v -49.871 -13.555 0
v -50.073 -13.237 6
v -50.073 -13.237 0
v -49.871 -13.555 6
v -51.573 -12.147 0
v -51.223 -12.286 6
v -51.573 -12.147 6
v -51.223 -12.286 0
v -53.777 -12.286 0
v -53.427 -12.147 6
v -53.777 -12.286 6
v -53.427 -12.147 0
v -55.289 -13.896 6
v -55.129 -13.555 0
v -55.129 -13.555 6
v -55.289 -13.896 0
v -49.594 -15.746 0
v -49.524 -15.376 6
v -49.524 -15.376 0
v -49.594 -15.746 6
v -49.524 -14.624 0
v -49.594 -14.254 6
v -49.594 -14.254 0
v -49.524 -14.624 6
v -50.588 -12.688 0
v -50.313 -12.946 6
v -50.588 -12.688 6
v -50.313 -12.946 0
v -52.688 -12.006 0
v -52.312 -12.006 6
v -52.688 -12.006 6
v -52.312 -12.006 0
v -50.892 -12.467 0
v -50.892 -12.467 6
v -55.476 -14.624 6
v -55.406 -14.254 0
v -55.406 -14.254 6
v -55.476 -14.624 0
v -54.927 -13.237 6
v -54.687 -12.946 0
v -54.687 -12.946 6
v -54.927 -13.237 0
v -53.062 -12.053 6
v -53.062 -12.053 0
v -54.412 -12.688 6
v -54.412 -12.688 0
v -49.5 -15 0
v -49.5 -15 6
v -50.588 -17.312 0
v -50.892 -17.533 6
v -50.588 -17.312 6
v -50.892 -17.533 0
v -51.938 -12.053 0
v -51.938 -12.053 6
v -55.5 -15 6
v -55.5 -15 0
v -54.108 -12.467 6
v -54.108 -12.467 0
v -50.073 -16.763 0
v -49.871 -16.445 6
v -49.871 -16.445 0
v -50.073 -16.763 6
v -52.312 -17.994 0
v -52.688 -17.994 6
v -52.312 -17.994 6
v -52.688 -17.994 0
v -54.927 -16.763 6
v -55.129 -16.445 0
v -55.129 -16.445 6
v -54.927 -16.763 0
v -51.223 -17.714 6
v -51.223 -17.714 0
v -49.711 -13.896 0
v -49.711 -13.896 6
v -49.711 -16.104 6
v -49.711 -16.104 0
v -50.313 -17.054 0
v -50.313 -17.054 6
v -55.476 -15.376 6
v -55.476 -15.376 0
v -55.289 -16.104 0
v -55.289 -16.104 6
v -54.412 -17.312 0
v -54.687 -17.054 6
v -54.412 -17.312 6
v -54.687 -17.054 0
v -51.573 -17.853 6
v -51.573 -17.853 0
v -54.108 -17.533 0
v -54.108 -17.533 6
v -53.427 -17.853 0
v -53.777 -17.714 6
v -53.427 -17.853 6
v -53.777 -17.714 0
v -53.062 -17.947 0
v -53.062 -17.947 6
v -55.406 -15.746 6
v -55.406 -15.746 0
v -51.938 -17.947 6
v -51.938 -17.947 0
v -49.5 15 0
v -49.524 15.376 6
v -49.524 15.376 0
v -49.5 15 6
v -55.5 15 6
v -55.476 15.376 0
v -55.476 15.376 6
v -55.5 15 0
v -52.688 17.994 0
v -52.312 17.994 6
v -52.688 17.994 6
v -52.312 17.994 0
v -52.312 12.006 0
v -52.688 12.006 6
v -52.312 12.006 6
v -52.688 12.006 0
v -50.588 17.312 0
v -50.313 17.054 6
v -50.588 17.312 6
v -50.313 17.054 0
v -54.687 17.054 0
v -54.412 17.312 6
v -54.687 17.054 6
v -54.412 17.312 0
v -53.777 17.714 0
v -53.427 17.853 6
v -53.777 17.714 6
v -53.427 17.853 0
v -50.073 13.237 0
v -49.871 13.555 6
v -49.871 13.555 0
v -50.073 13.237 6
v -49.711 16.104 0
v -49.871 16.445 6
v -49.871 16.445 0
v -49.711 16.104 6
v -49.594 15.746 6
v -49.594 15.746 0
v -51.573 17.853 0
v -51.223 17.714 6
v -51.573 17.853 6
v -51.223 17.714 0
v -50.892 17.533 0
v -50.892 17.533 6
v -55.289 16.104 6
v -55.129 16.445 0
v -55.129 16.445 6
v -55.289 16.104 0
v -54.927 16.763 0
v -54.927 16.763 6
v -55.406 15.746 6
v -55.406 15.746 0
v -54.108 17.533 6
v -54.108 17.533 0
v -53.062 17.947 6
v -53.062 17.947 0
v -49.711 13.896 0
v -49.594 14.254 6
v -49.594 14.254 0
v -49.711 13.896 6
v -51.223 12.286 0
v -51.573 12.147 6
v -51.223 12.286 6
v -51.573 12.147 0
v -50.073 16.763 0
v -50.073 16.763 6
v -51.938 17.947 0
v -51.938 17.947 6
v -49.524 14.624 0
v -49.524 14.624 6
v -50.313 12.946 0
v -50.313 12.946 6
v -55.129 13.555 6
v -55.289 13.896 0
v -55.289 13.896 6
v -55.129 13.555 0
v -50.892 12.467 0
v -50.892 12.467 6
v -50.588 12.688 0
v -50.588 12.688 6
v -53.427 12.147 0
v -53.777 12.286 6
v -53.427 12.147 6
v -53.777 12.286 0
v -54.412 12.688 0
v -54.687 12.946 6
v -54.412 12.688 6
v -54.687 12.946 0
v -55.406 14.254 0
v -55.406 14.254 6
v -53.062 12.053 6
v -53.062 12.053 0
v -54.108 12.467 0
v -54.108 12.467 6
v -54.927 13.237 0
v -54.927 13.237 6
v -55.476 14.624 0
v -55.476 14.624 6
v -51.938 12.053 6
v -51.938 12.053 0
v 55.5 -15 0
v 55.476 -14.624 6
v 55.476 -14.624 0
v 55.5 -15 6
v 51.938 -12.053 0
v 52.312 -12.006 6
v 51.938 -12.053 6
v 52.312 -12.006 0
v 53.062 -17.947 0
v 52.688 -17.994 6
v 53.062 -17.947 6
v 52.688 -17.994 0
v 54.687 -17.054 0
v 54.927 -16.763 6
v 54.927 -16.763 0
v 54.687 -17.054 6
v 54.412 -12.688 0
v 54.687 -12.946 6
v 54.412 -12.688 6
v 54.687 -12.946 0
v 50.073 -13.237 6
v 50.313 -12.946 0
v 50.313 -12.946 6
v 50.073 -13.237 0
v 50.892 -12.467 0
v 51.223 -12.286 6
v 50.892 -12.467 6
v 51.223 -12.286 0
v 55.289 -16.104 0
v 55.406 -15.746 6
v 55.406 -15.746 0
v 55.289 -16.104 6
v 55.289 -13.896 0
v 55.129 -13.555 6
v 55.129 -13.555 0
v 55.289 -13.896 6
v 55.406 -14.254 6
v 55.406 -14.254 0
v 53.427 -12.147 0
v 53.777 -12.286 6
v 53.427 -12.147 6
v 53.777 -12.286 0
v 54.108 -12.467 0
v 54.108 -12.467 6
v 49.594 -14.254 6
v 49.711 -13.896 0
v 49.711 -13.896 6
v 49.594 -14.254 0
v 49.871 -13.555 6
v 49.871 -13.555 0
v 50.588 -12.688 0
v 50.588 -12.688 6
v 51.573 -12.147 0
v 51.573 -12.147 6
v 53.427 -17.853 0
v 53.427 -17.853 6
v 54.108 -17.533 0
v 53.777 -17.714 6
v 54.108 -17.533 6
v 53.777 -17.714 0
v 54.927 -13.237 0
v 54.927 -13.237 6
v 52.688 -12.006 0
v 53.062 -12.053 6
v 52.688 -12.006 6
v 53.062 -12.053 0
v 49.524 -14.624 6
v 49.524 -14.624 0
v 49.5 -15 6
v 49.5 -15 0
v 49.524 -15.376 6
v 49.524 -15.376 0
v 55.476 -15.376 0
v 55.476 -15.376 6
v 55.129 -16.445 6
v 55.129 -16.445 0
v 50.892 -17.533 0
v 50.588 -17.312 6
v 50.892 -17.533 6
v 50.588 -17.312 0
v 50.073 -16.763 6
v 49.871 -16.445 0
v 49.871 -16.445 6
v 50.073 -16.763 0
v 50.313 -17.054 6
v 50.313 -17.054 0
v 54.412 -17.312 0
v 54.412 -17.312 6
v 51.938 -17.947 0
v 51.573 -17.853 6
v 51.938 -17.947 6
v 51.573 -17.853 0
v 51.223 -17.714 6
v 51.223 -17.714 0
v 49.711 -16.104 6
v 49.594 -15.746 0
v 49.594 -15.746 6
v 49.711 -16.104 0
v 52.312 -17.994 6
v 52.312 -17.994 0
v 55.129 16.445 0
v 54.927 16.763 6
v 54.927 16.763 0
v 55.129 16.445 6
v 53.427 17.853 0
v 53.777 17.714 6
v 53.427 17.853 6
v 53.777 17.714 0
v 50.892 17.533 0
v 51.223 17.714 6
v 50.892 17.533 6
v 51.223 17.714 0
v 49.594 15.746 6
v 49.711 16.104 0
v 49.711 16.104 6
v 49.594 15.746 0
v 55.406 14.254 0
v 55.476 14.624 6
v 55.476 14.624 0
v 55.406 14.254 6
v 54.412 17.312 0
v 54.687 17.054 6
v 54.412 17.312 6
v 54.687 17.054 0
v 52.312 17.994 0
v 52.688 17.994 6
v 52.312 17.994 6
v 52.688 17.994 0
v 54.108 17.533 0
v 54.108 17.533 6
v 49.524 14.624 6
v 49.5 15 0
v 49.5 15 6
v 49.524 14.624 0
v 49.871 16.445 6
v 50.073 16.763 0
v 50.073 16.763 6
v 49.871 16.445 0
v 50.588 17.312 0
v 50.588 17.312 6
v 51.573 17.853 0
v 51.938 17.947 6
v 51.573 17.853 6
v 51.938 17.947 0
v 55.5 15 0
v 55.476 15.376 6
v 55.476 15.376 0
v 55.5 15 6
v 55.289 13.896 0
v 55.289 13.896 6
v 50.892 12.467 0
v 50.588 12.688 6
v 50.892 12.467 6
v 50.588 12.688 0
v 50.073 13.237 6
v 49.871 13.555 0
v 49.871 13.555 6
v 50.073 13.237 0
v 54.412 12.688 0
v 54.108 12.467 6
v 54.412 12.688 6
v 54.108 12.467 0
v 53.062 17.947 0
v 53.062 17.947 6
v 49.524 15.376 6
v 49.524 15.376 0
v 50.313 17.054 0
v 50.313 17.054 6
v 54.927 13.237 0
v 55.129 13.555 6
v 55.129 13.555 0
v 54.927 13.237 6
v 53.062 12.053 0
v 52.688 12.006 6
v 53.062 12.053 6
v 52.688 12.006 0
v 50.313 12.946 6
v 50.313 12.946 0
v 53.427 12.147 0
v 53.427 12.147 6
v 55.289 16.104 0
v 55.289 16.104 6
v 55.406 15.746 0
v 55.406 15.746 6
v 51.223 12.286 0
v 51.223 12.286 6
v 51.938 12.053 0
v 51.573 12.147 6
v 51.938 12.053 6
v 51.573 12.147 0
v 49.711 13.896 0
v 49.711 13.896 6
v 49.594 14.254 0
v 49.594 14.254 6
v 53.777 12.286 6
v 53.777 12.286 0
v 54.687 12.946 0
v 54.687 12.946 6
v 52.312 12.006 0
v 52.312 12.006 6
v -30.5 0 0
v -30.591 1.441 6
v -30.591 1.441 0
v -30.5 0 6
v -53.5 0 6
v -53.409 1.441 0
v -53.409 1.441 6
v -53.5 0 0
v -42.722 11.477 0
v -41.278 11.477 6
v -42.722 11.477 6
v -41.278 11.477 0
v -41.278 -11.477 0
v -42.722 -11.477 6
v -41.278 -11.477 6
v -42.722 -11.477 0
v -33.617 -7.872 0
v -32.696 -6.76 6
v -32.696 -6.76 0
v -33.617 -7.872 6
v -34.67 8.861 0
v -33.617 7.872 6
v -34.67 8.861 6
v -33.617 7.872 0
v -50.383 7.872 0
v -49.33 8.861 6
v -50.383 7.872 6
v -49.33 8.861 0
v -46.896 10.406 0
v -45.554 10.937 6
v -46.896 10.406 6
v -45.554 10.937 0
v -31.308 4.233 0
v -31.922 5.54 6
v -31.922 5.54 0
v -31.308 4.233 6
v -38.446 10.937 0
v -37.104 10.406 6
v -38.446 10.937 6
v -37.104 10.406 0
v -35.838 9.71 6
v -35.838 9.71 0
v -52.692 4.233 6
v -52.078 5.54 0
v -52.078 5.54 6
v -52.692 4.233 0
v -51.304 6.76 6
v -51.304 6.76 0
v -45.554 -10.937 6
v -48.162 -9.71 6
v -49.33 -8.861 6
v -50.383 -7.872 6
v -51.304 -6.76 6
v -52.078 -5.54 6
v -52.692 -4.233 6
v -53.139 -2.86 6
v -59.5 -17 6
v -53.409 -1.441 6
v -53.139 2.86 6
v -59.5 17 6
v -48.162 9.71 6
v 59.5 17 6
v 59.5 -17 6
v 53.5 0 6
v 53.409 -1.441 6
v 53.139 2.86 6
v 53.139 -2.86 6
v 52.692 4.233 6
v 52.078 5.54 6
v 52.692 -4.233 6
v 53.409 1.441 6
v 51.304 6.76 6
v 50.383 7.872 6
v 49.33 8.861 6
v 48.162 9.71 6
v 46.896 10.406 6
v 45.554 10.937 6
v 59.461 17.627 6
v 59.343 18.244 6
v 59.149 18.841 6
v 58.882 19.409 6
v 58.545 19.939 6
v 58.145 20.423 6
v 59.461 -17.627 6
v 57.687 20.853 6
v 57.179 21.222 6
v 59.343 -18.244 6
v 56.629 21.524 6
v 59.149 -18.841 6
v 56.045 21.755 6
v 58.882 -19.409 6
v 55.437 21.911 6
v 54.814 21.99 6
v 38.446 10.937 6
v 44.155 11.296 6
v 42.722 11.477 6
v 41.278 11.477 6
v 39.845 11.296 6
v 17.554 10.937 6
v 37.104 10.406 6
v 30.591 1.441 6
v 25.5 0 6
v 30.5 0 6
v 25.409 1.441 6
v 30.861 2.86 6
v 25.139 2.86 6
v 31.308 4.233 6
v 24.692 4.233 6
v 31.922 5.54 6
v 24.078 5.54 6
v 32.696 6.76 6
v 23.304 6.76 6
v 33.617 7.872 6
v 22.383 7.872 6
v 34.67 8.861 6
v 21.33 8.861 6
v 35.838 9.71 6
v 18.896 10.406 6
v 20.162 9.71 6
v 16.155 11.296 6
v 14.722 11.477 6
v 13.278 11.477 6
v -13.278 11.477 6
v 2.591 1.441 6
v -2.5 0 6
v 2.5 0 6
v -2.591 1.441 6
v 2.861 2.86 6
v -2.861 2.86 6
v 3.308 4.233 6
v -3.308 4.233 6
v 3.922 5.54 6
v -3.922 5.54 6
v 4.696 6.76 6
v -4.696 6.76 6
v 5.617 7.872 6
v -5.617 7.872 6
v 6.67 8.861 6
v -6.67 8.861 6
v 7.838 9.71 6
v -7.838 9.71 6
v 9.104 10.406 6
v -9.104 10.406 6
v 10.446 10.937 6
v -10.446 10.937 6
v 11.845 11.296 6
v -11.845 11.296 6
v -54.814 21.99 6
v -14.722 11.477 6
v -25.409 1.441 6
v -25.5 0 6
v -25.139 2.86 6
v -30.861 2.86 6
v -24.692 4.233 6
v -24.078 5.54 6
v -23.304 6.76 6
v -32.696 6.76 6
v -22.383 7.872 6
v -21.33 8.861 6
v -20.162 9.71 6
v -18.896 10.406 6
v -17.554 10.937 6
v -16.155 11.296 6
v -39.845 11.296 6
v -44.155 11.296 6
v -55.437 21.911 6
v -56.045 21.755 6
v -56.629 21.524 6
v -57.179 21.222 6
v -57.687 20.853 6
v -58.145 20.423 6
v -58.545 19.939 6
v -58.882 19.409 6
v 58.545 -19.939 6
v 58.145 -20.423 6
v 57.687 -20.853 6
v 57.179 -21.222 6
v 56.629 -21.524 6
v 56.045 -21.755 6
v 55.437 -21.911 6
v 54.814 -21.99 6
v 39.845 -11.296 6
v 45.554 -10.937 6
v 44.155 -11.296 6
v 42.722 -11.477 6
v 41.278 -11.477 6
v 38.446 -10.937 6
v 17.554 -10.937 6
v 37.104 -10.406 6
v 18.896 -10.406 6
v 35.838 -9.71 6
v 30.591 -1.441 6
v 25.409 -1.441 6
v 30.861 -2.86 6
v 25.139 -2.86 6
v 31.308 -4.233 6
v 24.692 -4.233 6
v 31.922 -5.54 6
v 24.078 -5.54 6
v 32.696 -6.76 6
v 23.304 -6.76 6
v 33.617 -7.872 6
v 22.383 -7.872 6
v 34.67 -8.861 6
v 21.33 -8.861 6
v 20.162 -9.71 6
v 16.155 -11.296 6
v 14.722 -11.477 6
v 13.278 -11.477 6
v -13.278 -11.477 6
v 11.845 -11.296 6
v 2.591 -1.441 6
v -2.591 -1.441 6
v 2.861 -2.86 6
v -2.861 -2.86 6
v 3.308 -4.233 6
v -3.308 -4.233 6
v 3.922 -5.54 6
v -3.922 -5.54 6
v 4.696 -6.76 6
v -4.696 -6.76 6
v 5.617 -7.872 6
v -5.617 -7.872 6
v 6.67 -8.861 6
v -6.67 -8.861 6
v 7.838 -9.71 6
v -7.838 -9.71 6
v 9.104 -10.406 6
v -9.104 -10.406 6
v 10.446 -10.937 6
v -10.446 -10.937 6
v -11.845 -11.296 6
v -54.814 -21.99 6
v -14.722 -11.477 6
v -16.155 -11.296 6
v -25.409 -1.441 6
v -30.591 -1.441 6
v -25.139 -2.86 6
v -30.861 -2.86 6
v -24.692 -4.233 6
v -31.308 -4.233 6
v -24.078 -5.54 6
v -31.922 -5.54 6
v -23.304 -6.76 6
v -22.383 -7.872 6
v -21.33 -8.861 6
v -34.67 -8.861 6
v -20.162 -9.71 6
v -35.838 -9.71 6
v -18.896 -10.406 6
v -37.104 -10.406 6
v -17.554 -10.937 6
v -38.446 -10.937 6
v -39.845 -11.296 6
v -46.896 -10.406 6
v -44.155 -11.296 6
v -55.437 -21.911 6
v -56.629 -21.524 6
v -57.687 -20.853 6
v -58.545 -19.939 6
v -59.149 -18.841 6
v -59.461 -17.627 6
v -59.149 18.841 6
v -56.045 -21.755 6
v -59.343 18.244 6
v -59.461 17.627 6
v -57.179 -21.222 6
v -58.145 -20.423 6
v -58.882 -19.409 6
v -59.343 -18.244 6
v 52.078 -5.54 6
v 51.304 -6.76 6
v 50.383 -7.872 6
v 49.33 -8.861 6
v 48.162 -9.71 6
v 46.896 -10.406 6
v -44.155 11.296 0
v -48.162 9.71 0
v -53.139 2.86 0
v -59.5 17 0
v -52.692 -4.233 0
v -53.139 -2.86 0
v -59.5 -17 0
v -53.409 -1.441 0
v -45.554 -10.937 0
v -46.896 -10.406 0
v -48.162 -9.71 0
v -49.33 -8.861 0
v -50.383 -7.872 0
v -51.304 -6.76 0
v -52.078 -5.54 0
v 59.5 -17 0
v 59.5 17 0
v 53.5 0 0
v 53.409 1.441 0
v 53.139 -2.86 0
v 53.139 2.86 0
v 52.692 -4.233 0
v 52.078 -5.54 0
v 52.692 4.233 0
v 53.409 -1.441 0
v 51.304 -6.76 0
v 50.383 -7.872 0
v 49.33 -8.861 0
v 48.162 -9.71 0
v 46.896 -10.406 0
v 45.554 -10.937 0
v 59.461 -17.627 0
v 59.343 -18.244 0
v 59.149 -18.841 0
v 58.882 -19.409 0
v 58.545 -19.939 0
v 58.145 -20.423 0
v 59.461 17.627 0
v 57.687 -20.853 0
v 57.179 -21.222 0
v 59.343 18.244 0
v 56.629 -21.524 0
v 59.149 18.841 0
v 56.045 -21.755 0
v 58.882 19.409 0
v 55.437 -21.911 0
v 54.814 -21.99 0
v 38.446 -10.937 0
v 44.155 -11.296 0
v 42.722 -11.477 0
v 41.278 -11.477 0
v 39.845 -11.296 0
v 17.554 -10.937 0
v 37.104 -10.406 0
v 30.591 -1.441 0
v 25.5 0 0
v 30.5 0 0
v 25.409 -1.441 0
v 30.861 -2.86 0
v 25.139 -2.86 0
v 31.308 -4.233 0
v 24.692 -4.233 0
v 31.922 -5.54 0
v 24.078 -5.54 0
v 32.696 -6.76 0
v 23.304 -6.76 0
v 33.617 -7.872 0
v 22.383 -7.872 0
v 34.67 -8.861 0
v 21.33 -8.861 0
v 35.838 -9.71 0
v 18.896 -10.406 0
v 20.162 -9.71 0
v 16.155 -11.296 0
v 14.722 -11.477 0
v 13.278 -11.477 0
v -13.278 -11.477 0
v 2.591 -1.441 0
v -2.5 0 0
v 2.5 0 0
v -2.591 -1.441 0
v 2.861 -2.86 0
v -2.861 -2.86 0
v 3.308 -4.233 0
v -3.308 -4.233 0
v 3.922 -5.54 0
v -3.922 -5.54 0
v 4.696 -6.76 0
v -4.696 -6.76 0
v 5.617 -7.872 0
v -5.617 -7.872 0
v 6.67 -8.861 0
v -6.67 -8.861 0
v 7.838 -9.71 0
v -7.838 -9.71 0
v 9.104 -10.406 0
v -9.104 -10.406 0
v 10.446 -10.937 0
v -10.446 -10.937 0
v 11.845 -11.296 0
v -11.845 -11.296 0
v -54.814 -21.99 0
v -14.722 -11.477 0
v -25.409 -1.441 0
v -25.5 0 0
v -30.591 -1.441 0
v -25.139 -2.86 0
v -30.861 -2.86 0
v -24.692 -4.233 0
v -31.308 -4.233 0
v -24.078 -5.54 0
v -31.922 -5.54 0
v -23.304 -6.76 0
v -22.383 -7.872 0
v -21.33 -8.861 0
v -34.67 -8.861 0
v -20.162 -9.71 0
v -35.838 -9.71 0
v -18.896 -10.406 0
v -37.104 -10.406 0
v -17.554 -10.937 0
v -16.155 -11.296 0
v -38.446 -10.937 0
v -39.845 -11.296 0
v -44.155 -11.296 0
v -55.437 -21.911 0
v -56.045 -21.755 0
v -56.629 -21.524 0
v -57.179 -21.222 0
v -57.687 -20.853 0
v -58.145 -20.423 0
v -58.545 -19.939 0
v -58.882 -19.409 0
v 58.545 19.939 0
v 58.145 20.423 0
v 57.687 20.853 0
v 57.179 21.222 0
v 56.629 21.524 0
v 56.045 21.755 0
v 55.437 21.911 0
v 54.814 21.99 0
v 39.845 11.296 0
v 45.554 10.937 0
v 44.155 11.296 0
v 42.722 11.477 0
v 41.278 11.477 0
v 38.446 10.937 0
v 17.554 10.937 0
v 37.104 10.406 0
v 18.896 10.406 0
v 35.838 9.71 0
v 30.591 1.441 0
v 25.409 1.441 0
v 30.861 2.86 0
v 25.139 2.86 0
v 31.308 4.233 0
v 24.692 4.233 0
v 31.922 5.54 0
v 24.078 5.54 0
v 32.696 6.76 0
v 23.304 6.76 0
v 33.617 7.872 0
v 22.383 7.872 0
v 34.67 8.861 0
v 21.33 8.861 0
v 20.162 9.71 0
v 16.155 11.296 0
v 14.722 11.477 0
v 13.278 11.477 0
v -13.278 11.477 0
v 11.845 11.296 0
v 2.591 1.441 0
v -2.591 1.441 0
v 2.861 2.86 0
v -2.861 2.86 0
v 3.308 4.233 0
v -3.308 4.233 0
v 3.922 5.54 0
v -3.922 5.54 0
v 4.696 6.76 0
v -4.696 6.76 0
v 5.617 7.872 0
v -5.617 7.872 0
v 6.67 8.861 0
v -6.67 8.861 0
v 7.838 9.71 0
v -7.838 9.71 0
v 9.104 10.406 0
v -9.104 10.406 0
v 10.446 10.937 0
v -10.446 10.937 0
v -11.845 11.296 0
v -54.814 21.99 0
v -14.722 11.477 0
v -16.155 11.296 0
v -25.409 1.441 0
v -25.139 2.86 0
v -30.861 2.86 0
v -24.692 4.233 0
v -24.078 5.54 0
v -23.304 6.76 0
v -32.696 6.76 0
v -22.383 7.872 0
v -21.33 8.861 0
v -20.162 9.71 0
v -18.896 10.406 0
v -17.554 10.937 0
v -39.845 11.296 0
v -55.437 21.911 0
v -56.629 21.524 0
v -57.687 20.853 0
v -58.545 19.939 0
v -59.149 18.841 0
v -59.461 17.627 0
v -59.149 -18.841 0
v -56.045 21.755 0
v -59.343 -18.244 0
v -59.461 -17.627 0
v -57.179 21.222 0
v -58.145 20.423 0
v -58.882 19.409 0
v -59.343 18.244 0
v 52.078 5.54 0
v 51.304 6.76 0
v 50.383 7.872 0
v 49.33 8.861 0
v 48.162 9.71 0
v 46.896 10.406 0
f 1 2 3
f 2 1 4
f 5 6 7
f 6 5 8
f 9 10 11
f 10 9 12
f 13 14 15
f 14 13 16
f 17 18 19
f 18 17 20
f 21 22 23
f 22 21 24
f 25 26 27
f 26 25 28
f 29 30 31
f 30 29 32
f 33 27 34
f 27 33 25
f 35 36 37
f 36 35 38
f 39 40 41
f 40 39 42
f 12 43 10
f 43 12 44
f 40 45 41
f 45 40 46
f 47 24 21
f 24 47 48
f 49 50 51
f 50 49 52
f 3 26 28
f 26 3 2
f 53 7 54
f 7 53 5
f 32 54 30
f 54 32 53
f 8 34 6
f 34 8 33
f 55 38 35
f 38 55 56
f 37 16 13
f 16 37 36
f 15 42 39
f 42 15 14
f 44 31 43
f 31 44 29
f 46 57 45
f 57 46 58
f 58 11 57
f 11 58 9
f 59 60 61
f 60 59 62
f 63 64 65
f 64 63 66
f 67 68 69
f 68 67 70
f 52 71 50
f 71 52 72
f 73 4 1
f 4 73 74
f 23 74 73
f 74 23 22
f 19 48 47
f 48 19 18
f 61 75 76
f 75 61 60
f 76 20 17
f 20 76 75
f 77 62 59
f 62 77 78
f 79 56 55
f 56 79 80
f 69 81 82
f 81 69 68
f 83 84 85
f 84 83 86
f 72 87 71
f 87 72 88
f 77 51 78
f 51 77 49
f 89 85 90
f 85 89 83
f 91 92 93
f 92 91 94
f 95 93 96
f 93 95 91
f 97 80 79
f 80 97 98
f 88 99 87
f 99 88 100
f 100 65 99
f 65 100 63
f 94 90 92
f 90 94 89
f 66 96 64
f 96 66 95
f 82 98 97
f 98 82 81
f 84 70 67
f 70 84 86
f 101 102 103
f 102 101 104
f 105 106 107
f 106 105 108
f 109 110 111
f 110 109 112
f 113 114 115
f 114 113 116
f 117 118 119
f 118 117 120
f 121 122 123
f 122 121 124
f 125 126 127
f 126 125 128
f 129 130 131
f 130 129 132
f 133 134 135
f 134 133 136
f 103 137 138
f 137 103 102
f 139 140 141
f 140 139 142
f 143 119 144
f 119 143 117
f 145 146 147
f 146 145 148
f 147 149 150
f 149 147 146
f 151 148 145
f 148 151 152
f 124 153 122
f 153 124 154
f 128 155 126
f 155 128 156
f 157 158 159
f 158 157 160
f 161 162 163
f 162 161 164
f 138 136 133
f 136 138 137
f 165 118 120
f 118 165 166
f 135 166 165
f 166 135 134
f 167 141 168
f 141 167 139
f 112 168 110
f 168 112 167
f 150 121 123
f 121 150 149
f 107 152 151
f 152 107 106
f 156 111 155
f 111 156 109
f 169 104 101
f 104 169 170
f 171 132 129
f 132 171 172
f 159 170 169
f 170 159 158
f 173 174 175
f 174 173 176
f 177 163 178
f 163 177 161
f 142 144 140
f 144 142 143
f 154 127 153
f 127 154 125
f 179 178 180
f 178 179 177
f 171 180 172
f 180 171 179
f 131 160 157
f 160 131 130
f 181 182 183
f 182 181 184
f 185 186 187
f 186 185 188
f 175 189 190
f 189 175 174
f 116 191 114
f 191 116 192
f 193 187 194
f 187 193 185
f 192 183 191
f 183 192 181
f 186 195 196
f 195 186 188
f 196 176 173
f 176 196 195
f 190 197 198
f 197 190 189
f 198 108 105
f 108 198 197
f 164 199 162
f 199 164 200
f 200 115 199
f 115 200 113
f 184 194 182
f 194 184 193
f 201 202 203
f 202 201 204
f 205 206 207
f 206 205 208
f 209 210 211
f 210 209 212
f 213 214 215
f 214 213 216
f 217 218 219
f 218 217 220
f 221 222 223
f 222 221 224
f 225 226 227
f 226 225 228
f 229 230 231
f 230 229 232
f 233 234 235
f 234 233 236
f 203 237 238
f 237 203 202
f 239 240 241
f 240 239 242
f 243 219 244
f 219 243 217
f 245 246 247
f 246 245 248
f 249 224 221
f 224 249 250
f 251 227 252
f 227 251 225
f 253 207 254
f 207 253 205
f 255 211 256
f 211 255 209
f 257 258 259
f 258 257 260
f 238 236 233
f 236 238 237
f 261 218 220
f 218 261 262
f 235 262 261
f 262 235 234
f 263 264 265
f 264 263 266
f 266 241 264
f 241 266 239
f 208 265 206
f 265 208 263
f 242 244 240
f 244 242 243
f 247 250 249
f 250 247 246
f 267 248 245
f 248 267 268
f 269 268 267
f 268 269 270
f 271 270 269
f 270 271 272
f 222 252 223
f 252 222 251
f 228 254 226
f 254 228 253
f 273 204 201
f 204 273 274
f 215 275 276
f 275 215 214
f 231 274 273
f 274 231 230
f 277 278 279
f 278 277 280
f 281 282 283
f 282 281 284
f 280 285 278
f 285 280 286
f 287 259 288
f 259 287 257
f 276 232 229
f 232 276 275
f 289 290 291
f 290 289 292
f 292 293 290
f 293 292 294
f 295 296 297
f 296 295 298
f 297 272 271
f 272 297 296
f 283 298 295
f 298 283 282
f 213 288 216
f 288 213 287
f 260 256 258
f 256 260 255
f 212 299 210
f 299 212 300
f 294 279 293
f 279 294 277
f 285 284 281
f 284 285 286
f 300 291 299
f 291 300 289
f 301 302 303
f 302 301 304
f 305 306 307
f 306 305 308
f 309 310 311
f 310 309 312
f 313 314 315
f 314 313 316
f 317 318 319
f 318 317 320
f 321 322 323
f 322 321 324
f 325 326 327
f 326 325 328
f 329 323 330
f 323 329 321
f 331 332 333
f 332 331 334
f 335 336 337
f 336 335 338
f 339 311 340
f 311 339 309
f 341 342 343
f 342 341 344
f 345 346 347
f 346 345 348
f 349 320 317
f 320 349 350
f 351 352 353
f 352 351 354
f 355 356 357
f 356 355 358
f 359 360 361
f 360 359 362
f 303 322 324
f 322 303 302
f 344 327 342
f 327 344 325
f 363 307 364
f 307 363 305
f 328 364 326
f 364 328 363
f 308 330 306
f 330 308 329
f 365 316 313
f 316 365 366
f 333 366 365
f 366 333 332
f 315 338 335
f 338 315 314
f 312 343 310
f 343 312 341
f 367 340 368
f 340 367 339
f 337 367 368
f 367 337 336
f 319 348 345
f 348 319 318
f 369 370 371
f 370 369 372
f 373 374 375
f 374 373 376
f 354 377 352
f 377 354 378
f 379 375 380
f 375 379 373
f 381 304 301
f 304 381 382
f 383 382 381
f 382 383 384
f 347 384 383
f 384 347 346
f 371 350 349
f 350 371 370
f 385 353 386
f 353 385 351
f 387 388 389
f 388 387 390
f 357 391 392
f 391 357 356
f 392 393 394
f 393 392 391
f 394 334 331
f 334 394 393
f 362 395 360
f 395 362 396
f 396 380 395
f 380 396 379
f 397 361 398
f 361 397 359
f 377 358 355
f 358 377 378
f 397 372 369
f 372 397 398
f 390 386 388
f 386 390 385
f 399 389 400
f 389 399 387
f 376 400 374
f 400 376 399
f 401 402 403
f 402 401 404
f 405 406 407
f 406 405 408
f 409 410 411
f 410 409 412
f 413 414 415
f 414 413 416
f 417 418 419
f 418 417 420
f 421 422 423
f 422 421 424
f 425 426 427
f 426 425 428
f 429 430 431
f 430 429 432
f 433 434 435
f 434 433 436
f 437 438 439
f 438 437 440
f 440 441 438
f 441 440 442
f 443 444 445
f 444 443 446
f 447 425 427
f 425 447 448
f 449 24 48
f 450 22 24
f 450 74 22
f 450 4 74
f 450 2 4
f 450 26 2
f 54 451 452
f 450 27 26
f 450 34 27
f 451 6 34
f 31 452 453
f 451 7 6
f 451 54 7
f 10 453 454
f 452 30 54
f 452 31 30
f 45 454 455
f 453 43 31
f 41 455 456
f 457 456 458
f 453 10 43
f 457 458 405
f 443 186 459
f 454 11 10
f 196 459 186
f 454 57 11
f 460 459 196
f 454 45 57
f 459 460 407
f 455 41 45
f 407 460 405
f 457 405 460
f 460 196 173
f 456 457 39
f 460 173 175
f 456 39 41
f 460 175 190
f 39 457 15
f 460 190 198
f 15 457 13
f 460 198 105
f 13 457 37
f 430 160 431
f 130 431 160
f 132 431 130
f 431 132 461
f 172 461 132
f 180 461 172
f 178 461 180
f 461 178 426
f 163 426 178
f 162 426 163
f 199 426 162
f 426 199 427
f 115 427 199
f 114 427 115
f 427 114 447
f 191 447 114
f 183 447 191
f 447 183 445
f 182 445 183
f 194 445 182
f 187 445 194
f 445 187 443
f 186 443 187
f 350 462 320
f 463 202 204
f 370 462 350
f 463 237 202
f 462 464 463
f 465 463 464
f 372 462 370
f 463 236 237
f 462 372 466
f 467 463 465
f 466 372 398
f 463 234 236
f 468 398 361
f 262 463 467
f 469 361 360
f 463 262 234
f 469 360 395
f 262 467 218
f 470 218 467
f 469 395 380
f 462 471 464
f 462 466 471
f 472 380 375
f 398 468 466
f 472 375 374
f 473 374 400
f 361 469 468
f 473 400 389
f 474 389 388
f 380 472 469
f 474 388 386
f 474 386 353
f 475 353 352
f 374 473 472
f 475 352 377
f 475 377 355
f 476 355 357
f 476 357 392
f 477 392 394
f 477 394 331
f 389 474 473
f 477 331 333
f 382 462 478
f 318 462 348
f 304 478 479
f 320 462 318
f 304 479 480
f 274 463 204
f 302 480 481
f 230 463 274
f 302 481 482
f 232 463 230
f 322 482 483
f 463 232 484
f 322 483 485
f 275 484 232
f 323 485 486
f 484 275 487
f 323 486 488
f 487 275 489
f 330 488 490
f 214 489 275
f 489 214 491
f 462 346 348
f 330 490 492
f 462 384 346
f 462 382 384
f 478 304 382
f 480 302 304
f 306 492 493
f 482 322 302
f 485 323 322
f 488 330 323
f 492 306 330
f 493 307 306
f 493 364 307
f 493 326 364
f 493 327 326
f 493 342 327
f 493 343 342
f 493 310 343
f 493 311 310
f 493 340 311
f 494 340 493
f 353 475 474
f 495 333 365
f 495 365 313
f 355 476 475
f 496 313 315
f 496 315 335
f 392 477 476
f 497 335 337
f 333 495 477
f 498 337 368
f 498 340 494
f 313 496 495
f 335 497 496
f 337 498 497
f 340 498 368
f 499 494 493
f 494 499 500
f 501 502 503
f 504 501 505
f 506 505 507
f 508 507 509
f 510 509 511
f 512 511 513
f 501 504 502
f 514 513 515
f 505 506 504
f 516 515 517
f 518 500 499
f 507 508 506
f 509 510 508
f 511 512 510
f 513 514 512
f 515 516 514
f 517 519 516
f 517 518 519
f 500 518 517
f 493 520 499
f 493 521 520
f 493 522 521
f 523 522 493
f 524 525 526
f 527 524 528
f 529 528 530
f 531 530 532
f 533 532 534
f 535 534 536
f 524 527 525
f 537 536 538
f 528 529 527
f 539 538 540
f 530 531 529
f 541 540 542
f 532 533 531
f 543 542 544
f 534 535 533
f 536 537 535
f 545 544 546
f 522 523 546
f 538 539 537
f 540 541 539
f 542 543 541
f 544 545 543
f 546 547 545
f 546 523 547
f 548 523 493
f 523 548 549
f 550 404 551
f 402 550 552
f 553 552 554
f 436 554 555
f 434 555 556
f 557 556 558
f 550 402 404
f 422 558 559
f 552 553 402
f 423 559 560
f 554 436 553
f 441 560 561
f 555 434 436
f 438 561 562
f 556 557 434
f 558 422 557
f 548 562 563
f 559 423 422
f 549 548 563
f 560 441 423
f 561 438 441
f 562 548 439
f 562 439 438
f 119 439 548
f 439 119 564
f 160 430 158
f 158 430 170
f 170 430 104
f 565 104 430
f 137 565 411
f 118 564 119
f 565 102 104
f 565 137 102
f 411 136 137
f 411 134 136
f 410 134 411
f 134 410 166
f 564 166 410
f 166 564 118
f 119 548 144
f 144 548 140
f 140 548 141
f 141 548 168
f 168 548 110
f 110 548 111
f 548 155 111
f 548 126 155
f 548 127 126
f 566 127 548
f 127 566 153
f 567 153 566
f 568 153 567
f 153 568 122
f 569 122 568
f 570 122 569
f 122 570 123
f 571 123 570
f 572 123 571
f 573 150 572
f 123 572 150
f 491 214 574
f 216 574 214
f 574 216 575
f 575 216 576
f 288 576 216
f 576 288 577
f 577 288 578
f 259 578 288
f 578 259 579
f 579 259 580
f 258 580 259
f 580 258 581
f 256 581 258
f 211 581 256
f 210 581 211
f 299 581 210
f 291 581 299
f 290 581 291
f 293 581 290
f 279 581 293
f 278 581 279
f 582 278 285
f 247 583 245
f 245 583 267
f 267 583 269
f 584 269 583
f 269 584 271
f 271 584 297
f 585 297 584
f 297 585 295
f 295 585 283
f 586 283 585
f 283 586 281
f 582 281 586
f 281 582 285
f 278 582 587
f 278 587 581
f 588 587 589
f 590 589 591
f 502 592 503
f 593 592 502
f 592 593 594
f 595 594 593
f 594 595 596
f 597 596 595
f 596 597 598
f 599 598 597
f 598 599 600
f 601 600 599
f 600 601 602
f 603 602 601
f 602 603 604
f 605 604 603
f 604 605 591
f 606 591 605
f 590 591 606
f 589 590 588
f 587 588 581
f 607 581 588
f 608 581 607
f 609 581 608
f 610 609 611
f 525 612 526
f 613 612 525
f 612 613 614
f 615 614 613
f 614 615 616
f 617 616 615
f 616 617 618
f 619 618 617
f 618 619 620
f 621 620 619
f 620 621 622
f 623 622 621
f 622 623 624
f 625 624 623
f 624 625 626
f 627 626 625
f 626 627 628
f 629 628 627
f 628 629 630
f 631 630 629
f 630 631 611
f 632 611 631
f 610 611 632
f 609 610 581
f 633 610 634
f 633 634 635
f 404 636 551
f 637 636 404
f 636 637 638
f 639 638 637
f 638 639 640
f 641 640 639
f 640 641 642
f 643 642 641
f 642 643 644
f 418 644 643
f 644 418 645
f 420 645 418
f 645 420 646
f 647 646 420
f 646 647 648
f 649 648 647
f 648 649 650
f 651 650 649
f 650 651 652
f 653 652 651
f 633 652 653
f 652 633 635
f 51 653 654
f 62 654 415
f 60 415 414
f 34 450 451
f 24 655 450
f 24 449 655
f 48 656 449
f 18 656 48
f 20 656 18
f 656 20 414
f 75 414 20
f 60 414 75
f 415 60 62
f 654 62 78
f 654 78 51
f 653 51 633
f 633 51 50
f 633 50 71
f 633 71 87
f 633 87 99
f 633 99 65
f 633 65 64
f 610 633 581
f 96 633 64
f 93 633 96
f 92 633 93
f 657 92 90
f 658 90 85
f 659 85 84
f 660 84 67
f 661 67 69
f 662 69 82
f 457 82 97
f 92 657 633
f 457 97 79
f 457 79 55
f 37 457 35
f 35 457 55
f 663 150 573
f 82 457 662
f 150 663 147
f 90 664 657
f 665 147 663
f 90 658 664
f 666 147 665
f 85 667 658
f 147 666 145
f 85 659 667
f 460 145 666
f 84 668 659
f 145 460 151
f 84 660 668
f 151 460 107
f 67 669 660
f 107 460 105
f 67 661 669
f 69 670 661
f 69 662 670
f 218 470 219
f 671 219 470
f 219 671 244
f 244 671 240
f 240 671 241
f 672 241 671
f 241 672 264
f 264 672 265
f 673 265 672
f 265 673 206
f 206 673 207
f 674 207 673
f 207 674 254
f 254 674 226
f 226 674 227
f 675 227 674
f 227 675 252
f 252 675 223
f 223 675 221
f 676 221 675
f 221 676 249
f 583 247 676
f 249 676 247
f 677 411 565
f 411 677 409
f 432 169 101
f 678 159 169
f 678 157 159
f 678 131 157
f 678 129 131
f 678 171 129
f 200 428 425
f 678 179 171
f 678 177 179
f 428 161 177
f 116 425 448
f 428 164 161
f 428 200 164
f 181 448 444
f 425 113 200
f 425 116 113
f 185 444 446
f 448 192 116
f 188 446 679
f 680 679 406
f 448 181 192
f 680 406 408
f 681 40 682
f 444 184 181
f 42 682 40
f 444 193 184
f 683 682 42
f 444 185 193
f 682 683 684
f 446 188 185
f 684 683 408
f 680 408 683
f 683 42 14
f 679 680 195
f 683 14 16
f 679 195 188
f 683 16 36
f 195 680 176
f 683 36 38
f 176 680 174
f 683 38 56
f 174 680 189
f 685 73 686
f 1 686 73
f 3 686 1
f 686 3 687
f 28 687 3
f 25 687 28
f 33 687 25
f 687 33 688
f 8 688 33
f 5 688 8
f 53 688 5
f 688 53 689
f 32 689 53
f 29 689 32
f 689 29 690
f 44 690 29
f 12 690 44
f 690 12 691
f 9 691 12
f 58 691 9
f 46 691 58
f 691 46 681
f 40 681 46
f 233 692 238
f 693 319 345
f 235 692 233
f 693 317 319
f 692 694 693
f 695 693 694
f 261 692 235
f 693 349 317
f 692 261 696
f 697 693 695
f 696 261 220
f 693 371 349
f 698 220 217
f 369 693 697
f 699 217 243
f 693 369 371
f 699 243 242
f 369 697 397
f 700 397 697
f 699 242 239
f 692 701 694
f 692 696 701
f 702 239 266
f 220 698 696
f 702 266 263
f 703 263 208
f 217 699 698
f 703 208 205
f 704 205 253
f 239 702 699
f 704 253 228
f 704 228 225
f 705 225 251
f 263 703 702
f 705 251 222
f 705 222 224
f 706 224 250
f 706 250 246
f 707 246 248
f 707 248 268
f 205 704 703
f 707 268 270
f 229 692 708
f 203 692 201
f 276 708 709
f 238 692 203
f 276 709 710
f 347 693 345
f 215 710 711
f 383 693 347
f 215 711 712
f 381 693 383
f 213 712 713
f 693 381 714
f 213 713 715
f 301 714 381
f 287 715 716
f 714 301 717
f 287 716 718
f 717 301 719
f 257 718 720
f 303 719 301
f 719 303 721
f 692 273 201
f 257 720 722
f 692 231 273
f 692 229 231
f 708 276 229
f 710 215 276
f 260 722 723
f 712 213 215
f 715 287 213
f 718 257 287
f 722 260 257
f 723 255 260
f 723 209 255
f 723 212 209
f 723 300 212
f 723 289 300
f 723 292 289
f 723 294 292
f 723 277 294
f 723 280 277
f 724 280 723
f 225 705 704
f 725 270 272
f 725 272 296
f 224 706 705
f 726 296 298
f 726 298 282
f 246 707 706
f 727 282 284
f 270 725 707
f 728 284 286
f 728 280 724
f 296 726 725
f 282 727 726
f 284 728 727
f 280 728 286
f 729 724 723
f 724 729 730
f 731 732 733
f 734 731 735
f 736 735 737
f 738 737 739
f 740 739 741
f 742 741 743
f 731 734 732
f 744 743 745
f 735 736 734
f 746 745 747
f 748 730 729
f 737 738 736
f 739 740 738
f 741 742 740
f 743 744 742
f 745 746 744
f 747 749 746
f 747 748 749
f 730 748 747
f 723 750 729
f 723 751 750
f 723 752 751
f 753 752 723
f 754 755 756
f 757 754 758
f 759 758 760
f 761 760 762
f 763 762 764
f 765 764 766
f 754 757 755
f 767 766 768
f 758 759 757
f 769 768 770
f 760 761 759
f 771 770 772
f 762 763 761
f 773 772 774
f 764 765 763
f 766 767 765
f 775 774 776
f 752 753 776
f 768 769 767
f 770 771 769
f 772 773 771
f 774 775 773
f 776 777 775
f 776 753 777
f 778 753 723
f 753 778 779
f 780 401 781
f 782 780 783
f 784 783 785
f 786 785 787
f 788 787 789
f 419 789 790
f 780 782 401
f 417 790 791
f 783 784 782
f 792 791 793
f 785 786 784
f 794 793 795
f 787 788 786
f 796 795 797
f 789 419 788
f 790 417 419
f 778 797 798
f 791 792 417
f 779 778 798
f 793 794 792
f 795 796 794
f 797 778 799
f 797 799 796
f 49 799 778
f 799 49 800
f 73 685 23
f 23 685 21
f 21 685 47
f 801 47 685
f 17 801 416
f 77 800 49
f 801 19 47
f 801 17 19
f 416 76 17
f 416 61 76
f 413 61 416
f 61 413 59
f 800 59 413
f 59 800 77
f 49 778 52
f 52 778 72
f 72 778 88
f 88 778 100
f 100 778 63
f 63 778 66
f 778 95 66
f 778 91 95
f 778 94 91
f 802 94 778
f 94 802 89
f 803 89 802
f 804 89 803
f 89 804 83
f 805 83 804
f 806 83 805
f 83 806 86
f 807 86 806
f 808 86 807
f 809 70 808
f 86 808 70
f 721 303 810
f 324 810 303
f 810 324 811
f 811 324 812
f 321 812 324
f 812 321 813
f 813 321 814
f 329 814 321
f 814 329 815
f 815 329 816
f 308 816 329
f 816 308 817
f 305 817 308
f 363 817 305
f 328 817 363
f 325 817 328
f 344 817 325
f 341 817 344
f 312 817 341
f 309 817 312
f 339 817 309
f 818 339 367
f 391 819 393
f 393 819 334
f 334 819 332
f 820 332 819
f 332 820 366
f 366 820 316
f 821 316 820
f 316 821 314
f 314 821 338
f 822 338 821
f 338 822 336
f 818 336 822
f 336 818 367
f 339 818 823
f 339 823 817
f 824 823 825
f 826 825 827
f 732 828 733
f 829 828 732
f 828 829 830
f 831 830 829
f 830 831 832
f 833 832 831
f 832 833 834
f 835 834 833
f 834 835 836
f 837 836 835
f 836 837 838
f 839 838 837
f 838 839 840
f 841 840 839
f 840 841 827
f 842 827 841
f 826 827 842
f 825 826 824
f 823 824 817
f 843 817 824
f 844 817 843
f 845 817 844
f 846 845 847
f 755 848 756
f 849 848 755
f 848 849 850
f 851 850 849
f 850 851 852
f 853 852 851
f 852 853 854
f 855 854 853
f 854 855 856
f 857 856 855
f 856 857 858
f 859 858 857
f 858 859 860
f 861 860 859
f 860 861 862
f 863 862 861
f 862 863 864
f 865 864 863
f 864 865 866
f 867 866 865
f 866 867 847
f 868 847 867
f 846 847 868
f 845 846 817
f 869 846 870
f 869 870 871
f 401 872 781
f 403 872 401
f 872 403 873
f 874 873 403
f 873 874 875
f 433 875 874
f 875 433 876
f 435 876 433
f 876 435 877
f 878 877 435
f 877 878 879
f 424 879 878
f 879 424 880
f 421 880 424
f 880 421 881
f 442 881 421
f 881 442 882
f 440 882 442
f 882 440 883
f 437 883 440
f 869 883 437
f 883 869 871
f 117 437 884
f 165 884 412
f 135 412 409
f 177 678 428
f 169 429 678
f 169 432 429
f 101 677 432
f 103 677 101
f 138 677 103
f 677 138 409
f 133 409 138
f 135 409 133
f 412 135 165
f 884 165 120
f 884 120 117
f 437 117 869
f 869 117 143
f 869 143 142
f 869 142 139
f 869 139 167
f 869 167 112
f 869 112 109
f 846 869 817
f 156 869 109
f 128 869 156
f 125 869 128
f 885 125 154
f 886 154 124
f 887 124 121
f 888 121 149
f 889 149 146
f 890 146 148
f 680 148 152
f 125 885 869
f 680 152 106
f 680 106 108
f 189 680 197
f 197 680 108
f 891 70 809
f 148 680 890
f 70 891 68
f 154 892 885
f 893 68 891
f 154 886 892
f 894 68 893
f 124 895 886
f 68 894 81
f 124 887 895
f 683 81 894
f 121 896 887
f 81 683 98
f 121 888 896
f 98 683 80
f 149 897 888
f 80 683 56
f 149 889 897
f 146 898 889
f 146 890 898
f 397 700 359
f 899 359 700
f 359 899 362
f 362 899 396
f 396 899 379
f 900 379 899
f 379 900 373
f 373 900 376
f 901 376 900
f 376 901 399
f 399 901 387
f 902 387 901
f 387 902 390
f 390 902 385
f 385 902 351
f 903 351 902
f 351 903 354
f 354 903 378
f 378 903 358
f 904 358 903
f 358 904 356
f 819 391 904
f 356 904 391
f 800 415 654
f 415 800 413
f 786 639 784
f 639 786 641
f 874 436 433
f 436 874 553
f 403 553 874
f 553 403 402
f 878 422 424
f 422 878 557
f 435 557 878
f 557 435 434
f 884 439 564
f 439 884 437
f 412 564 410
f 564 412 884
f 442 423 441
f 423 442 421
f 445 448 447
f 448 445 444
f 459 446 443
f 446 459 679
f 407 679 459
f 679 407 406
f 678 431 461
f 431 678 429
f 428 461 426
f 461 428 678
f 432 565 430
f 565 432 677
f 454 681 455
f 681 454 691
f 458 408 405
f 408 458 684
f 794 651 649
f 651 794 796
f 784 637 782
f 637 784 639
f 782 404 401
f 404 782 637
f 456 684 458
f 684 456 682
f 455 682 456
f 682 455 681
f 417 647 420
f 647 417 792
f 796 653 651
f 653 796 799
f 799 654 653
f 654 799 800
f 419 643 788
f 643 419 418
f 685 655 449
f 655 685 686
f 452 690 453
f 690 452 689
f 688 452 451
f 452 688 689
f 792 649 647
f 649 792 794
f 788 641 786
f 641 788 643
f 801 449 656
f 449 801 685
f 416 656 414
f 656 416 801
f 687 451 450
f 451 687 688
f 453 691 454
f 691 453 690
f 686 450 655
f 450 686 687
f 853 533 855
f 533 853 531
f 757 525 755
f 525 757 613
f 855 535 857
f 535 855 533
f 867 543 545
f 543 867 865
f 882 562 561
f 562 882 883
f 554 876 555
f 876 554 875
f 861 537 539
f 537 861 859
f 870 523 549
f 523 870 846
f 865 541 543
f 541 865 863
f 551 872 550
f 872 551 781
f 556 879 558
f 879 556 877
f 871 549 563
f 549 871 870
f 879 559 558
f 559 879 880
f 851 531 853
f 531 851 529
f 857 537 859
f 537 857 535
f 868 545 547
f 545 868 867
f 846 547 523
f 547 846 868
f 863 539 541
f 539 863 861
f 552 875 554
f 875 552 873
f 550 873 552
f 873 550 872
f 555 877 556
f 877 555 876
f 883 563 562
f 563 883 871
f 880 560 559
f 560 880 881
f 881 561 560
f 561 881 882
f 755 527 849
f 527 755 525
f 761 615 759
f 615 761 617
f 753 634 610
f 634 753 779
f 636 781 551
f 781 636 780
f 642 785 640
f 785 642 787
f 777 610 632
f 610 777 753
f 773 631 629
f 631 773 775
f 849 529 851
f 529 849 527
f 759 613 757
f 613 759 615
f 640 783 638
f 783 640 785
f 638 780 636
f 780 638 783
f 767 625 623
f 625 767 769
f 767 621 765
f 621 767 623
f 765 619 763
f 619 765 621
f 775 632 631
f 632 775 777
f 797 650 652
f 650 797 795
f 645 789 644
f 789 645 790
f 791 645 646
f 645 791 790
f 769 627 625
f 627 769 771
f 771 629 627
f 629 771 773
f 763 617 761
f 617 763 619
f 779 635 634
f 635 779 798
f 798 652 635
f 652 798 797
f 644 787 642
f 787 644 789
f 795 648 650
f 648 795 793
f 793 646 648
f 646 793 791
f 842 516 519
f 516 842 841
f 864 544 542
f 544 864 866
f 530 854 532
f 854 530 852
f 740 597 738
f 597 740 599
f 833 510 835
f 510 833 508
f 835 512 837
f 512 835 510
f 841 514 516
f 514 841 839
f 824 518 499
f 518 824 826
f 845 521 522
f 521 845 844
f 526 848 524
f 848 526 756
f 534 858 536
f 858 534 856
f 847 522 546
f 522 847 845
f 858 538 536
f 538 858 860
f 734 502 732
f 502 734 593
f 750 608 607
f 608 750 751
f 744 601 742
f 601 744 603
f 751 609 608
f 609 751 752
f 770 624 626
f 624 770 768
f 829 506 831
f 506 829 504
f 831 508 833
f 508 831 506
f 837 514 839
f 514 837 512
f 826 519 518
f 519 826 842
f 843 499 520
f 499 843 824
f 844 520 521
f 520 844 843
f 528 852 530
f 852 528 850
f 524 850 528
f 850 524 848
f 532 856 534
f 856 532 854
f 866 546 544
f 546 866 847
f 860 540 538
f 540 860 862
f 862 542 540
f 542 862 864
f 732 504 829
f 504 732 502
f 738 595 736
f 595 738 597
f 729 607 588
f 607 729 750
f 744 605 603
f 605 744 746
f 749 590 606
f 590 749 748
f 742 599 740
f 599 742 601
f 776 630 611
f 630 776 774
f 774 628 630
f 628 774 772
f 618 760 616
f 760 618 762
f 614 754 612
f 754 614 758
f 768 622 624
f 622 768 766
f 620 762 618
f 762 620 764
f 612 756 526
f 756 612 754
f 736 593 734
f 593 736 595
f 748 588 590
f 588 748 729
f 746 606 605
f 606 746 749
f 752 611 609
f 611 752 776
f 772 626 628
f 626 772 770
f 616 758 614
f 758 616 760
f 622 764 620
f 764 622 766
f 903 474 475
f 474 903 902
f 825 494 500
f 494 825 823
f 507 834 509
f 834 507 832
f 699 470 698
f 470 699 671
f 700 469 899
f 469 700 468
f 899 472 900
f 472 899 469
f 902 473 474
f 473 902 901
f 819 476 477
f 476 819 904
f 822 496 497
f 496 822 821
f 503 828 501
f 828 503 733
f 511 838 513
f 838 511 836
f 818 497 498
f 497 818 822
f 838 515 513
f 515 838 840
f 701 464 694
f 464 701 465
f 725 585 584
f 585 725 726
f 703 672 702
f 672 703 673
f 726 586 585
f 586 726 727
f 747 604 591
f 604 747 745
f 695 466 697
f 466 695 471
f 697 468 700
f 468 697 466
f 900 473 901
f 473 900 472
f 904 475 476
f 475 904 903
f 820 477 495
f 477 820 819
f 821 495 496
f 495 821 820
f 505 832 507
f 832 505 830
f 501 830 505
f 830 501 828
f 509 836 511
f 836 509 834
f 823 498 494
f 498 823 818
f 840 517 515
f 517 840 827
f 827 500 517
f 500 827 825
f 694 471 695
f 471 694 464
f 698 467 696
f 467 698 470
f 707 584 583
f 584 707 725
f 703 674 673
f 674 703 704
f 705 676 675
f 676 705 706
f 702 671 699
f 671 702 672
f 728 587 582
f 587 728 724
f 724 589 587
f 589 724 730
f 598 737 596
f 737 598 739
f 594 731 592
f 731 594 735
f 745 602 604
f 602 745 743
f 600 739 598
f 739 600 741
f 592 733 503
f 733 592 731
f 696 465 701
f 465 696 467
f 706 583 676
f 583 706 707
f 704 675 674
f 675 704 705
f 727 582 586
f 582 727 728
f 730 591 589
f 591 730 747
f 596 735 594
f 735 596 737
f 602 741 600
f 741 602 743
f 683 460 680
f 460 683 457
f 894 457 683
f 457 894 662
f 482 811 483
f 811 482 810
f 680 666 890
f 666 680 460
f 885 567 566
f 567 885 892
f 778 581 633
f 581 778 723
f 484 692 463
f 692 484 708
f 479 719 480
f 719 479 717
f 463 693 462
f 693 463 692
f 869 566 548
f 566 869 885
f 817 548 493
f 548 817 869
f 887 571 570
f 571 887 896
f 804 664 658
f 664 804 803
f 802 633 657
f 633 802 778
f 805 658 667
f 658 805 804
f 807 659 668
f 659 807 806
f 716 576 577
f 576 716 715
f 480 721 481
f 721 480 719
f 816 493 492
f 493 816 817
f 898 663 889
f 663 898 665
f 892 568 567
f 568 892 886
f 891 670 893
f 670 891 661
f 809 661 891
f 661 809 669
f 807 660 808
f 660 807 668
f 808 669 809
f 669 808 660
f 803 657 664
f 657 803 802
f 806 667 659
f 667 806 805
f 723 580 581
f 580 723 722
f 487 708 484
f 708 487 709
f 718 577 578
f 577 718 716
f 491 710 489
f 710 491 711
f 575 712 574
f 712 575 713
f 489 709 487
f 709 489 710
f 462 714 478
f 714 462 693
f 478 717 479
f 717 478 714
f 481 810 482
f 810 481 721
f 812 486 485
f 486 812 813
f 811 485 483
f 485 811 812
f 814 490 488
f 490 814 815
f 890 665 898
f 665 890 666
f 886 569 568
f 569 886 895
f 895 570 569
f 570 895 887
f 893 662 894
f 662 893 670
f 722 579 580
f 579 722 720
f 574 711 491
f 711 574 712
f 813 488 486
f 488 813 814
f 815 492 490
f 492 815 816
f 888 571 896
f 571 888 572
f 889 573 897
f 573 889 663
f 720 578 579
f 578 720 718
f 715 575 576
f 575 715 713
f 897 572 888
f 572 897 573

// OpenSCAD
$fn = 50;


difference() {
	union() {
		hull() {
			translate(v = [-54.5000000000, 17.0000000000, 0]) {
				cylinder(h = 6, r = 5);
			}
			translate(v = [54.5000000000, 17.0000000000, 0]) {
				cylinder(h = 6, r = 5);
			}
			translate(v = [-54.5000000000, -17.0000000000, 0]) {
				cylinder(h = 6, r = 5);
			}
			translate(v = [54.5000000000, -17.0000000000, 0]) {
				cylinder(h = 6, r = 5);
			}
		}
	}
	union() {
		#translate(v = [-52.5000000000, -15.0000000000, -100.0000000000]) {
			cylinder(h = 200, r = 3.0000000000);
		}
		#translate(v = [-52.5000000000, 15.0000000000, -100.0000000000]) {
			cylinder(h = 200, r = 3.0000000000);
		}
		#translate(v = [52.5000000000, -15.0000000000, -100.0000000000]) {
			cylinder(h = 200, r = 3.0000000000);
		}
		#translate(v = [52.5000000000, 15.0000000000, -100.0000000000]) {
			cylinder(h = 200, r = 3.0000000000);
		}
		#translate(v = [-42.0000000000, 0, 0]) {
			cylinder(h = 6, r = 11.5000000000);
		}
		#translate(v = [-14.0000000000, 0, 0]) {
			cylinder(h = 6, r = 11.5000000000);
		}
		#translate(v = [14.0000000000, 0, 0]) {
			cylinder(h = 6, r = 11.5000000000);
		}
		#translate(v = [42.0000000000, 0, 0]) {
			cylinder(h = 6, r = 11.5000000000);
		}
	}
}
